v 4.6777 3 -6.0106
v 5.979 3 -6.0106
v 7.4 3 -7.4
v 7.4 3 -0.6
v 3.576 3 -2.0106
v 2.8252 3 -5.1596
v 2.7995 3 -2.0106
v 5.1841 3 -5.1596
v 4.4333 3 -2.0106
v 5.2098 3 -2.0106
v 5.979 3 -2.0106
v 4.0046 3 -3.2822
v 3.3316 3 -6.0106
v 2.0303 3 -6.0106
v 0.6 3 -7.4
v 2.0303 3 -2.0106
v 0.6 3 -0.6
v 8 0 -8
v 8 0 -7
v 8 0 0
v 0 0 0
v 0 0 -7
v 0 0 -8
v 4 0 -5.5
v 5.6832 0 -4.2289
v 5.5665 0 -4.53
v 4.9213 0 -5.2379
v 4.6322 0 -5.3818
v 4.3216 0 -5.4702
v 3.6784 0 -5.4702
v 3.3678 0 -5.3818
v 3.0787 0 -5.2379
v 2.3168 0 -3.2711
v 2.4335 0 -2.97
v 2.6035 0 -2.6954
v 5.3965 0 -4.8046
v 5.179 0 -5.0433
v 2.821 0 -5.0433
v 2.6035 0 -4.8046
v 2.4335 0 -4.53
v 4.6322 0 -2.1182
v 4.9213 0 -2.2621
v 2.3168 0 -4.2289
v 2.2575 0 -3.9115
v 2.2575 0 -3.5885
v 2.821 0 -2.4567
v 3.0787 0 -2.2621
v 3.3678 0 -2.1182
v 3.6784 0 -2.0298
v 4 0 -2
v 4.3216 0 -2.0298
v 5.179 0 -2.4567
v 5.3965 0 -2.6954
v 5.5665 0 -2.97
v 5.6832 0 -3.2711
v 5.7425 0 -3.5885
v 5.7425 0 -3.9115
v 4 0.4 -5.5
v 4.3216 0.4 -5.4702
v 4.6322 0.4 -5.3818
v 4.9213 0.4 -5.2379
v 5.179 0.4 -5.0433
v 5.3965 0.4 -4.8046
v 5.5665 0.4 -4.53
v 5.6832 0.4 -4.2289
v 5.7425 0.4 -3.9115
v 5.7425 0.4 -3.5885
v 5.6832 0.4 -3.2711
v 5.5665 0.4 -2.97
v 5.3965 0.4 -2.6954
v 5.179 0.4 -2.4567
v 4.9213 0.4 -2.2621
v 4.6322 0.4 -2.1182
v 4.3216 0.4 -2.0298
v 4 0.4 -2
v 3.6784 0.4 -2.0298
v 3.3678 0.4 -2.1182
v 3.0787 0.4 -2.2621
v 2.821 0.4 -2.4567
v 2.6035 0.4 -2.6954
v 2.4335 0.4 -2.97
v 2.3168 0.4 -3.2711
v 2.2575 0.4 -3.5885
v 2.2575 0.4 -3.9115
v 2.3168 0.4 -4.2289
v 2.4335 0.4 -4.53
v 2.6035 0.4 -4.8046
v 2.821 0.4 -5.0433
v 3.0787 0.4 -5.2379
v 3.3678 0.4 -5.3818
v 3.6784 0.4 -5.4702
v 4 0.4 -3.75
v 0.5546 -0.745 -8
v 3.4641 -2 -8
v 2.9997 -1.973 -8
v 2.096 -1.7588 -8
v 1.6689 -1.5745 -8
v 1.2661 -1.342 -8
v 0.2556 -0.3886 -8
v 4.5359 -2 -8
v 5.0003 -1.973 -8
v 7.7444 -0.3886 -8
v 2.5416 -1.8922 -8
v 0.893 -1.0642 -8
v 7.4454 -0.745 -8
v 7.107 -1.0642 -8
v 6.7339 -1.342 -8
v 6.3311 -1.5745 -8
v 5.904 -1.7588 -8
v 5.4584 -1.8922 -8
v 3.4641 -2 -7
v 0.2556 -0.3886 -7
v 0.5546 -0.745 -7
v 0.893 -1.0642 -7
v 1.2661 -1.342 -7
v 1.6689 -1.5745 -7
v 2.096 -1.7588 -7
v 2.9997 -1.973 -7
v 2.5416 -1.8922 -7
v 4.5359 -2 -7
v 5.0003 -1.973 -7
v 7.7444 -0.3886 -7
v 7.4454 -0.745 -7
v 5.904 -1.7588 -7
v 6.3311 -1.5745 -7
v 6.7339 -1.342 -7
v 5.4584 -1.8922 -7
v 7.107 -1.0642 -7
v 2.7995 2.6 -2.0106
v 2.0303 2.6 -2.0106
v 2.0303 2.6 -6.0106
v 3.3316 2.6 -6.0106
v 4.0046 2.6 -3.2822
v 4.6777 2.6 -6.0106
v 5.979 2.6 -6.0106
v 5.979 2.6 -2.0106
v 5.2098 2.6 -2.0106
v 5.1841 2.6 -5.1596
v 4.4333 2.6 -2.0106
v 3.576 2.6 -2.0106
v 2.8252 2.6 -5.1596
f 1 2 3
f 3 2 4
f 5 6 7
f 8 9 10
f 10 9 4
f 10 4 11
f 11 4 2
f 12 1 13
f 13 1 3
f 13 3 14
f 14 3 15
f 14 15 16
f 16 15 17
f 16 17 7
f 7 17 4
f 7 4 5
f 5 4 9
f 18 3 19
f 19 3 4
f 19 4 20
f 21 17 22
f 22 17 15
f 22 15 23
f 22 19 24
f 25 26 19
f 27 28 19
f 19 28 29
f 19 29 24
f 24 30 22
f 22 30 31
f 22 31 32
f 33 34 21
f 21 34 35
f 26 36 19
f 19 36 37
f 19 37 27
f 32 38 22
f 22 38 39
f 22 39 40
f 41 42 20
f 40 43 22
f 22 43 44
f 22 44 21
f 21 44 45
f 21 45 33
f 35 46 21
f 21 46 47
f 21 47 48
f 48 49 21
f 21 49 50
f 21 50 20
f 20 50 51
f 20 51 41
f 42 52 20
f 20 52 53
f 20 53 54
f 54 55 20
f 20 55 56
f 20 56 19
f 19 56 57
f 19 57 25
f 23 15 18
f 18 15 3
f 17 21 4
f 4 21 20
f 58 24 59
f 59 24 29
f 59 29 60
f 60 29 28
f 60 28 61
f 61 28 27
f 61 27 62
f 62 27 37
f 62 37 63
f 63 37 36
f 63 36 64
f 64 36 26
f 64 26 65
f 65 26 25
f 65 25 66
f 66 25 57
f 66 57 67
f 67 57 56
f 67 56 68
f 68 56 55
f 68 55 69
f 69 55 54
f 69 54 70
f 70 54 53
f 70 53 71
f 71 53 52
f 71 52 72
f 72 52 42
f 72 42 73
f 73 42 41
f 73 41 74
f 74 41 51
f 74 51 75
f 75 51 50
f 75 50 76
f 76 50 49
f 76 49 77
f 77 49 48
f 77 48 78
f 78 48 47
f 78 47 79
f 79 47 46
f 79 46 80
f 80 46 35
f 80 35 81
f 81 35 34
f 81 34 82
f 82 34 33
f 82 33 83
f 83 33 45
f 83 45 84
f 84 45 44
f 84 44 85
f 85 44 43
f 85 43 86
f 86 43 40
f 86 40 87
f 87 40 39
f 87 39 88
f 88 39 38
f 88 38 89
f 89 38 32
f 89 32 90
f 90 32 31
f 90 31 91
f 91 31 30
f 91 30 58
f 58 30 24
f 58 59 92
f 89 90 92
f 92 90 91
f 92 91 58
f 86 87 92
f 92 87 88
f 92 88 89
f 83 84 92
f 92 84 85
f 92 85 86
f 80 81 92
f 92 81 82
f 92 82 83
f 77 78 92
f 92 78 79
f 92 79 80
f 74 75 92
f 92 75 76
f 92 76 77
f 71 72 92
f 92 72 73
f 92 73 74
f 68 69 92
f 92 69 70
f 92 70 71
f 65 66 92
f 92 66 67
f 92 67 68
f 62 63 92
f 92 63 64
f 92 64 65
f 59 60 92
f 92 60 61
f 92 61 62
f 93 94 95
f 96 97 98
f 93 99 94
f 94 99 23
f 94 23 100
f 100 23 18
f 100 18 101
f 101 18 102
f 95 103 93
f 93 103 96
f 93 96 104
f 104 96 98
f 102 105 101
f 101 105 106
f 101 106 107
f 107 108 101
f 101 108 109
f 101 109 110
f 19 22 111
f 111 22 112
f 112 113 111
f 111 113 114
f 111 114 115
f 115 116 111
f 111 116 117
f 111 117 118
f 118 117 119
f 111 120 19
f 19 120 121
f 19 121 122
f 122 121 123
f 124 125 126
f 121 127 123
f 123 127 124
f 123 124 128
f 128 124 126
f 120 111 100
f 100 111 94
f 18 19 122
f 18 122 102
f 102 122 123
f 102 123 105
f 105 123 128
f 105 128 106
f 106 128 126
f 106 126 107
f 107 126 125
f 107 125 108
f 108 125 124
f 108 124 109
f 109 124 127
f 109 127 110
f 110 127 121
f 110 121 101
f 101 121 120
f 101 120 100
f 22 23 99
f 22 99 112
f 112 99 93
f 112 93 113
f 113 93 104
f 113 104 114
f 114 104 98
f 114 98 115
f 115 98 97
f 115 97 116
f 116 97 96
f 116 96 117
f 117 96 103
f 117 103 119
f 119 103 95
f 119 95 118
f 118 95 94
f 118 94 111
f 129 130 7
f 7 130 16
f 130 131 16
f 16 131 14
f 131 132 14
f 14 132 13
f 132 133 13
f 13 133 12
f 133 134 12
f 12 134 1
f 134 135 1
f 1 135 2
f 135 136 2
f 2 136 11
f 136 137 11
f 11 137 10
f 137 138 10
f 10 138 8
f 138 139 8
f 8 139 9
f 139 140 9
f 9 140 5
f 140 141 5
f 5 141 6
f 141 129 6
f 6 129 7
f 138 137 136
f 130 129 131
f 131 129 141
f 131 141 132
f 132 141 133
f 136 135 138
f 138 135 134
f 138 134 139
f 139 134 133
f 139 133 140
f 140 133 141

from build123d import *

# Parameters (mm, degrees)
SKETCH1_W               = 8
SKETCH1_H               = 8
BOSS_EXTRUDE1_DEPTH     = 3
CUT_EXTRUDE1_DEPTH      = 12.704699911
CUT_EXTRUDE1_DEPTH_BACK = 12.704699911
CUT_EXTRUDE2_DEPTH      = 11
SKETCH4_R               = 1.75
CUT_EXTRUDE3_DEPTH      = 0.4
SKETCH5_W               = 8
SKETCH5_H               = 1
BOSS_EXTRUDE2_DEPTH     = 2
FILLET1_R               = 4
CUT_EXTRUDE4_DEPTH      = 0.4


with BuildPart() as part:
    # Sketch1 → Boss-Extrude1 (new body)
    with BuildSketch(Plane(origin=(0, 0, 0), x_dir=(1, 0, 0), z_dir=(0, 1, 0))):
        with Locations((4, 4)):
            Rectangle(SKETCH1_W, SKETCH1_H)
    extrude(amount=BOSS_EXTRUDE1_DEPTH)

    # Sketch2 → Cut-Extrude1 (cut, two sides: drawn at the far end of the back side and taken through both)
    with BuildSketch(Plane.XY.offset(-CUT_EXTRUDE1_DEPTH_BACK)):
        Polygon((0, 0), (0.6, 3), (0, 3), align=None)
        Polygon((8, 0), (7.4, 3), (8, 3), align=None)
    extrude(amount=CUT_EXTRUDE1_DEPTH + CUT_EXTRUDE1_DEPTH_BACK, mode=Mode.SUBTRACT)

    # Sketch3 → Cut-Extrude2 (cut)
    with BuildSketch(Plane(origin=(0, 0, 0), x_dir=(0, 0, -1), z_dir=(1, 0, 0))):
        Polygon((0, 0), (0.6, 3), (0, 3), align=None)
        Polygon((8, 3), (7.4, 3), (8, 0), align=None)
    extrude(amount=CUT_EXTRUDE2_DEPTH, mode=Mode.SUBTRACT)

    # Sketch4 → Cut-Extrude3 (cut)
    with BuildSketch(Plane.XZ):
        with Locations(Location((4, -3.75, 0), (0, 0, 270))):
            Circle(SKETCH4_R)
    extrude(amount=-CUT_EXTRUDE3_DEPTH, mode=Mode.SUBTRACT)

    # Sketch5 → Boss-Extrude2 (add)
    with BuildSketch(Plane.XZ):
        with Locations((4, -7.5)):
            Rectangle(SKETCH5_W, SKETCH5_H)
    extrude(amount=BOSS_EXTRUDE2_DEPTH)

    # Fillet1
    # the kernel refuses this fillet: 4 mm, written as the material it takes off along each edge
    with BuildSketch(Plane(origin=(8, -2, -16.660254038), x_dir=(0, 1, 0), z_dir=(0, 0, 1)), Plane(origin=(0, -2, 1.660254038), x_dir=(0, 1, 0), z_dir=(0, 0, -1))) as fillet1_piece_1:
        with BuildLine():
            CenterArc((4, 3.464101615), FILLET1_R, 180, 60)
            Line((0, 3.464101615), (-0.08, 3.464101615))
            Line((-0.08, 3.464101615), (-0.08, 0))
            Line((-0.08, 0), (0, -0.08))
            ThreePointArc((0, -0.08), (1, -0.08), (1.96, -0.069282032))
            Line((1.96, -0.069282032), (2, 0))
        make_face()
    extrude(amount=18.320508076, mode=Mode.SUBTRACT)

    # Sketch6 → Cut-Extrude4 (cut)
    with BuildSketch(Plane(origin=(0, 3, 0), x_dir=(1, 0, 0), z_dir=(0, 1, 0))):
        Polygon((2.030290665, 2.010567225), (2.030290665, 6.010567225), (3.331572716, 6.010567225), (4.004649639, 3.28220184), (4.677726562, 6.010567225), (5.979008613, 6.010567225), (5.979008613, 2.010567225), (5.209777844, 2.010567225), (5.184136818, 5.159605686), (4.433335536, 2.010567225), (3.575963742, 2.010567225), (2.82516246, 5.159605686), (2.799521434, 2.010567225), align=None)
    extrude(amount=-CUT_EXTRUDE4_DEPTH, mode=Mode.SUBTRACT)


solid = part.part
